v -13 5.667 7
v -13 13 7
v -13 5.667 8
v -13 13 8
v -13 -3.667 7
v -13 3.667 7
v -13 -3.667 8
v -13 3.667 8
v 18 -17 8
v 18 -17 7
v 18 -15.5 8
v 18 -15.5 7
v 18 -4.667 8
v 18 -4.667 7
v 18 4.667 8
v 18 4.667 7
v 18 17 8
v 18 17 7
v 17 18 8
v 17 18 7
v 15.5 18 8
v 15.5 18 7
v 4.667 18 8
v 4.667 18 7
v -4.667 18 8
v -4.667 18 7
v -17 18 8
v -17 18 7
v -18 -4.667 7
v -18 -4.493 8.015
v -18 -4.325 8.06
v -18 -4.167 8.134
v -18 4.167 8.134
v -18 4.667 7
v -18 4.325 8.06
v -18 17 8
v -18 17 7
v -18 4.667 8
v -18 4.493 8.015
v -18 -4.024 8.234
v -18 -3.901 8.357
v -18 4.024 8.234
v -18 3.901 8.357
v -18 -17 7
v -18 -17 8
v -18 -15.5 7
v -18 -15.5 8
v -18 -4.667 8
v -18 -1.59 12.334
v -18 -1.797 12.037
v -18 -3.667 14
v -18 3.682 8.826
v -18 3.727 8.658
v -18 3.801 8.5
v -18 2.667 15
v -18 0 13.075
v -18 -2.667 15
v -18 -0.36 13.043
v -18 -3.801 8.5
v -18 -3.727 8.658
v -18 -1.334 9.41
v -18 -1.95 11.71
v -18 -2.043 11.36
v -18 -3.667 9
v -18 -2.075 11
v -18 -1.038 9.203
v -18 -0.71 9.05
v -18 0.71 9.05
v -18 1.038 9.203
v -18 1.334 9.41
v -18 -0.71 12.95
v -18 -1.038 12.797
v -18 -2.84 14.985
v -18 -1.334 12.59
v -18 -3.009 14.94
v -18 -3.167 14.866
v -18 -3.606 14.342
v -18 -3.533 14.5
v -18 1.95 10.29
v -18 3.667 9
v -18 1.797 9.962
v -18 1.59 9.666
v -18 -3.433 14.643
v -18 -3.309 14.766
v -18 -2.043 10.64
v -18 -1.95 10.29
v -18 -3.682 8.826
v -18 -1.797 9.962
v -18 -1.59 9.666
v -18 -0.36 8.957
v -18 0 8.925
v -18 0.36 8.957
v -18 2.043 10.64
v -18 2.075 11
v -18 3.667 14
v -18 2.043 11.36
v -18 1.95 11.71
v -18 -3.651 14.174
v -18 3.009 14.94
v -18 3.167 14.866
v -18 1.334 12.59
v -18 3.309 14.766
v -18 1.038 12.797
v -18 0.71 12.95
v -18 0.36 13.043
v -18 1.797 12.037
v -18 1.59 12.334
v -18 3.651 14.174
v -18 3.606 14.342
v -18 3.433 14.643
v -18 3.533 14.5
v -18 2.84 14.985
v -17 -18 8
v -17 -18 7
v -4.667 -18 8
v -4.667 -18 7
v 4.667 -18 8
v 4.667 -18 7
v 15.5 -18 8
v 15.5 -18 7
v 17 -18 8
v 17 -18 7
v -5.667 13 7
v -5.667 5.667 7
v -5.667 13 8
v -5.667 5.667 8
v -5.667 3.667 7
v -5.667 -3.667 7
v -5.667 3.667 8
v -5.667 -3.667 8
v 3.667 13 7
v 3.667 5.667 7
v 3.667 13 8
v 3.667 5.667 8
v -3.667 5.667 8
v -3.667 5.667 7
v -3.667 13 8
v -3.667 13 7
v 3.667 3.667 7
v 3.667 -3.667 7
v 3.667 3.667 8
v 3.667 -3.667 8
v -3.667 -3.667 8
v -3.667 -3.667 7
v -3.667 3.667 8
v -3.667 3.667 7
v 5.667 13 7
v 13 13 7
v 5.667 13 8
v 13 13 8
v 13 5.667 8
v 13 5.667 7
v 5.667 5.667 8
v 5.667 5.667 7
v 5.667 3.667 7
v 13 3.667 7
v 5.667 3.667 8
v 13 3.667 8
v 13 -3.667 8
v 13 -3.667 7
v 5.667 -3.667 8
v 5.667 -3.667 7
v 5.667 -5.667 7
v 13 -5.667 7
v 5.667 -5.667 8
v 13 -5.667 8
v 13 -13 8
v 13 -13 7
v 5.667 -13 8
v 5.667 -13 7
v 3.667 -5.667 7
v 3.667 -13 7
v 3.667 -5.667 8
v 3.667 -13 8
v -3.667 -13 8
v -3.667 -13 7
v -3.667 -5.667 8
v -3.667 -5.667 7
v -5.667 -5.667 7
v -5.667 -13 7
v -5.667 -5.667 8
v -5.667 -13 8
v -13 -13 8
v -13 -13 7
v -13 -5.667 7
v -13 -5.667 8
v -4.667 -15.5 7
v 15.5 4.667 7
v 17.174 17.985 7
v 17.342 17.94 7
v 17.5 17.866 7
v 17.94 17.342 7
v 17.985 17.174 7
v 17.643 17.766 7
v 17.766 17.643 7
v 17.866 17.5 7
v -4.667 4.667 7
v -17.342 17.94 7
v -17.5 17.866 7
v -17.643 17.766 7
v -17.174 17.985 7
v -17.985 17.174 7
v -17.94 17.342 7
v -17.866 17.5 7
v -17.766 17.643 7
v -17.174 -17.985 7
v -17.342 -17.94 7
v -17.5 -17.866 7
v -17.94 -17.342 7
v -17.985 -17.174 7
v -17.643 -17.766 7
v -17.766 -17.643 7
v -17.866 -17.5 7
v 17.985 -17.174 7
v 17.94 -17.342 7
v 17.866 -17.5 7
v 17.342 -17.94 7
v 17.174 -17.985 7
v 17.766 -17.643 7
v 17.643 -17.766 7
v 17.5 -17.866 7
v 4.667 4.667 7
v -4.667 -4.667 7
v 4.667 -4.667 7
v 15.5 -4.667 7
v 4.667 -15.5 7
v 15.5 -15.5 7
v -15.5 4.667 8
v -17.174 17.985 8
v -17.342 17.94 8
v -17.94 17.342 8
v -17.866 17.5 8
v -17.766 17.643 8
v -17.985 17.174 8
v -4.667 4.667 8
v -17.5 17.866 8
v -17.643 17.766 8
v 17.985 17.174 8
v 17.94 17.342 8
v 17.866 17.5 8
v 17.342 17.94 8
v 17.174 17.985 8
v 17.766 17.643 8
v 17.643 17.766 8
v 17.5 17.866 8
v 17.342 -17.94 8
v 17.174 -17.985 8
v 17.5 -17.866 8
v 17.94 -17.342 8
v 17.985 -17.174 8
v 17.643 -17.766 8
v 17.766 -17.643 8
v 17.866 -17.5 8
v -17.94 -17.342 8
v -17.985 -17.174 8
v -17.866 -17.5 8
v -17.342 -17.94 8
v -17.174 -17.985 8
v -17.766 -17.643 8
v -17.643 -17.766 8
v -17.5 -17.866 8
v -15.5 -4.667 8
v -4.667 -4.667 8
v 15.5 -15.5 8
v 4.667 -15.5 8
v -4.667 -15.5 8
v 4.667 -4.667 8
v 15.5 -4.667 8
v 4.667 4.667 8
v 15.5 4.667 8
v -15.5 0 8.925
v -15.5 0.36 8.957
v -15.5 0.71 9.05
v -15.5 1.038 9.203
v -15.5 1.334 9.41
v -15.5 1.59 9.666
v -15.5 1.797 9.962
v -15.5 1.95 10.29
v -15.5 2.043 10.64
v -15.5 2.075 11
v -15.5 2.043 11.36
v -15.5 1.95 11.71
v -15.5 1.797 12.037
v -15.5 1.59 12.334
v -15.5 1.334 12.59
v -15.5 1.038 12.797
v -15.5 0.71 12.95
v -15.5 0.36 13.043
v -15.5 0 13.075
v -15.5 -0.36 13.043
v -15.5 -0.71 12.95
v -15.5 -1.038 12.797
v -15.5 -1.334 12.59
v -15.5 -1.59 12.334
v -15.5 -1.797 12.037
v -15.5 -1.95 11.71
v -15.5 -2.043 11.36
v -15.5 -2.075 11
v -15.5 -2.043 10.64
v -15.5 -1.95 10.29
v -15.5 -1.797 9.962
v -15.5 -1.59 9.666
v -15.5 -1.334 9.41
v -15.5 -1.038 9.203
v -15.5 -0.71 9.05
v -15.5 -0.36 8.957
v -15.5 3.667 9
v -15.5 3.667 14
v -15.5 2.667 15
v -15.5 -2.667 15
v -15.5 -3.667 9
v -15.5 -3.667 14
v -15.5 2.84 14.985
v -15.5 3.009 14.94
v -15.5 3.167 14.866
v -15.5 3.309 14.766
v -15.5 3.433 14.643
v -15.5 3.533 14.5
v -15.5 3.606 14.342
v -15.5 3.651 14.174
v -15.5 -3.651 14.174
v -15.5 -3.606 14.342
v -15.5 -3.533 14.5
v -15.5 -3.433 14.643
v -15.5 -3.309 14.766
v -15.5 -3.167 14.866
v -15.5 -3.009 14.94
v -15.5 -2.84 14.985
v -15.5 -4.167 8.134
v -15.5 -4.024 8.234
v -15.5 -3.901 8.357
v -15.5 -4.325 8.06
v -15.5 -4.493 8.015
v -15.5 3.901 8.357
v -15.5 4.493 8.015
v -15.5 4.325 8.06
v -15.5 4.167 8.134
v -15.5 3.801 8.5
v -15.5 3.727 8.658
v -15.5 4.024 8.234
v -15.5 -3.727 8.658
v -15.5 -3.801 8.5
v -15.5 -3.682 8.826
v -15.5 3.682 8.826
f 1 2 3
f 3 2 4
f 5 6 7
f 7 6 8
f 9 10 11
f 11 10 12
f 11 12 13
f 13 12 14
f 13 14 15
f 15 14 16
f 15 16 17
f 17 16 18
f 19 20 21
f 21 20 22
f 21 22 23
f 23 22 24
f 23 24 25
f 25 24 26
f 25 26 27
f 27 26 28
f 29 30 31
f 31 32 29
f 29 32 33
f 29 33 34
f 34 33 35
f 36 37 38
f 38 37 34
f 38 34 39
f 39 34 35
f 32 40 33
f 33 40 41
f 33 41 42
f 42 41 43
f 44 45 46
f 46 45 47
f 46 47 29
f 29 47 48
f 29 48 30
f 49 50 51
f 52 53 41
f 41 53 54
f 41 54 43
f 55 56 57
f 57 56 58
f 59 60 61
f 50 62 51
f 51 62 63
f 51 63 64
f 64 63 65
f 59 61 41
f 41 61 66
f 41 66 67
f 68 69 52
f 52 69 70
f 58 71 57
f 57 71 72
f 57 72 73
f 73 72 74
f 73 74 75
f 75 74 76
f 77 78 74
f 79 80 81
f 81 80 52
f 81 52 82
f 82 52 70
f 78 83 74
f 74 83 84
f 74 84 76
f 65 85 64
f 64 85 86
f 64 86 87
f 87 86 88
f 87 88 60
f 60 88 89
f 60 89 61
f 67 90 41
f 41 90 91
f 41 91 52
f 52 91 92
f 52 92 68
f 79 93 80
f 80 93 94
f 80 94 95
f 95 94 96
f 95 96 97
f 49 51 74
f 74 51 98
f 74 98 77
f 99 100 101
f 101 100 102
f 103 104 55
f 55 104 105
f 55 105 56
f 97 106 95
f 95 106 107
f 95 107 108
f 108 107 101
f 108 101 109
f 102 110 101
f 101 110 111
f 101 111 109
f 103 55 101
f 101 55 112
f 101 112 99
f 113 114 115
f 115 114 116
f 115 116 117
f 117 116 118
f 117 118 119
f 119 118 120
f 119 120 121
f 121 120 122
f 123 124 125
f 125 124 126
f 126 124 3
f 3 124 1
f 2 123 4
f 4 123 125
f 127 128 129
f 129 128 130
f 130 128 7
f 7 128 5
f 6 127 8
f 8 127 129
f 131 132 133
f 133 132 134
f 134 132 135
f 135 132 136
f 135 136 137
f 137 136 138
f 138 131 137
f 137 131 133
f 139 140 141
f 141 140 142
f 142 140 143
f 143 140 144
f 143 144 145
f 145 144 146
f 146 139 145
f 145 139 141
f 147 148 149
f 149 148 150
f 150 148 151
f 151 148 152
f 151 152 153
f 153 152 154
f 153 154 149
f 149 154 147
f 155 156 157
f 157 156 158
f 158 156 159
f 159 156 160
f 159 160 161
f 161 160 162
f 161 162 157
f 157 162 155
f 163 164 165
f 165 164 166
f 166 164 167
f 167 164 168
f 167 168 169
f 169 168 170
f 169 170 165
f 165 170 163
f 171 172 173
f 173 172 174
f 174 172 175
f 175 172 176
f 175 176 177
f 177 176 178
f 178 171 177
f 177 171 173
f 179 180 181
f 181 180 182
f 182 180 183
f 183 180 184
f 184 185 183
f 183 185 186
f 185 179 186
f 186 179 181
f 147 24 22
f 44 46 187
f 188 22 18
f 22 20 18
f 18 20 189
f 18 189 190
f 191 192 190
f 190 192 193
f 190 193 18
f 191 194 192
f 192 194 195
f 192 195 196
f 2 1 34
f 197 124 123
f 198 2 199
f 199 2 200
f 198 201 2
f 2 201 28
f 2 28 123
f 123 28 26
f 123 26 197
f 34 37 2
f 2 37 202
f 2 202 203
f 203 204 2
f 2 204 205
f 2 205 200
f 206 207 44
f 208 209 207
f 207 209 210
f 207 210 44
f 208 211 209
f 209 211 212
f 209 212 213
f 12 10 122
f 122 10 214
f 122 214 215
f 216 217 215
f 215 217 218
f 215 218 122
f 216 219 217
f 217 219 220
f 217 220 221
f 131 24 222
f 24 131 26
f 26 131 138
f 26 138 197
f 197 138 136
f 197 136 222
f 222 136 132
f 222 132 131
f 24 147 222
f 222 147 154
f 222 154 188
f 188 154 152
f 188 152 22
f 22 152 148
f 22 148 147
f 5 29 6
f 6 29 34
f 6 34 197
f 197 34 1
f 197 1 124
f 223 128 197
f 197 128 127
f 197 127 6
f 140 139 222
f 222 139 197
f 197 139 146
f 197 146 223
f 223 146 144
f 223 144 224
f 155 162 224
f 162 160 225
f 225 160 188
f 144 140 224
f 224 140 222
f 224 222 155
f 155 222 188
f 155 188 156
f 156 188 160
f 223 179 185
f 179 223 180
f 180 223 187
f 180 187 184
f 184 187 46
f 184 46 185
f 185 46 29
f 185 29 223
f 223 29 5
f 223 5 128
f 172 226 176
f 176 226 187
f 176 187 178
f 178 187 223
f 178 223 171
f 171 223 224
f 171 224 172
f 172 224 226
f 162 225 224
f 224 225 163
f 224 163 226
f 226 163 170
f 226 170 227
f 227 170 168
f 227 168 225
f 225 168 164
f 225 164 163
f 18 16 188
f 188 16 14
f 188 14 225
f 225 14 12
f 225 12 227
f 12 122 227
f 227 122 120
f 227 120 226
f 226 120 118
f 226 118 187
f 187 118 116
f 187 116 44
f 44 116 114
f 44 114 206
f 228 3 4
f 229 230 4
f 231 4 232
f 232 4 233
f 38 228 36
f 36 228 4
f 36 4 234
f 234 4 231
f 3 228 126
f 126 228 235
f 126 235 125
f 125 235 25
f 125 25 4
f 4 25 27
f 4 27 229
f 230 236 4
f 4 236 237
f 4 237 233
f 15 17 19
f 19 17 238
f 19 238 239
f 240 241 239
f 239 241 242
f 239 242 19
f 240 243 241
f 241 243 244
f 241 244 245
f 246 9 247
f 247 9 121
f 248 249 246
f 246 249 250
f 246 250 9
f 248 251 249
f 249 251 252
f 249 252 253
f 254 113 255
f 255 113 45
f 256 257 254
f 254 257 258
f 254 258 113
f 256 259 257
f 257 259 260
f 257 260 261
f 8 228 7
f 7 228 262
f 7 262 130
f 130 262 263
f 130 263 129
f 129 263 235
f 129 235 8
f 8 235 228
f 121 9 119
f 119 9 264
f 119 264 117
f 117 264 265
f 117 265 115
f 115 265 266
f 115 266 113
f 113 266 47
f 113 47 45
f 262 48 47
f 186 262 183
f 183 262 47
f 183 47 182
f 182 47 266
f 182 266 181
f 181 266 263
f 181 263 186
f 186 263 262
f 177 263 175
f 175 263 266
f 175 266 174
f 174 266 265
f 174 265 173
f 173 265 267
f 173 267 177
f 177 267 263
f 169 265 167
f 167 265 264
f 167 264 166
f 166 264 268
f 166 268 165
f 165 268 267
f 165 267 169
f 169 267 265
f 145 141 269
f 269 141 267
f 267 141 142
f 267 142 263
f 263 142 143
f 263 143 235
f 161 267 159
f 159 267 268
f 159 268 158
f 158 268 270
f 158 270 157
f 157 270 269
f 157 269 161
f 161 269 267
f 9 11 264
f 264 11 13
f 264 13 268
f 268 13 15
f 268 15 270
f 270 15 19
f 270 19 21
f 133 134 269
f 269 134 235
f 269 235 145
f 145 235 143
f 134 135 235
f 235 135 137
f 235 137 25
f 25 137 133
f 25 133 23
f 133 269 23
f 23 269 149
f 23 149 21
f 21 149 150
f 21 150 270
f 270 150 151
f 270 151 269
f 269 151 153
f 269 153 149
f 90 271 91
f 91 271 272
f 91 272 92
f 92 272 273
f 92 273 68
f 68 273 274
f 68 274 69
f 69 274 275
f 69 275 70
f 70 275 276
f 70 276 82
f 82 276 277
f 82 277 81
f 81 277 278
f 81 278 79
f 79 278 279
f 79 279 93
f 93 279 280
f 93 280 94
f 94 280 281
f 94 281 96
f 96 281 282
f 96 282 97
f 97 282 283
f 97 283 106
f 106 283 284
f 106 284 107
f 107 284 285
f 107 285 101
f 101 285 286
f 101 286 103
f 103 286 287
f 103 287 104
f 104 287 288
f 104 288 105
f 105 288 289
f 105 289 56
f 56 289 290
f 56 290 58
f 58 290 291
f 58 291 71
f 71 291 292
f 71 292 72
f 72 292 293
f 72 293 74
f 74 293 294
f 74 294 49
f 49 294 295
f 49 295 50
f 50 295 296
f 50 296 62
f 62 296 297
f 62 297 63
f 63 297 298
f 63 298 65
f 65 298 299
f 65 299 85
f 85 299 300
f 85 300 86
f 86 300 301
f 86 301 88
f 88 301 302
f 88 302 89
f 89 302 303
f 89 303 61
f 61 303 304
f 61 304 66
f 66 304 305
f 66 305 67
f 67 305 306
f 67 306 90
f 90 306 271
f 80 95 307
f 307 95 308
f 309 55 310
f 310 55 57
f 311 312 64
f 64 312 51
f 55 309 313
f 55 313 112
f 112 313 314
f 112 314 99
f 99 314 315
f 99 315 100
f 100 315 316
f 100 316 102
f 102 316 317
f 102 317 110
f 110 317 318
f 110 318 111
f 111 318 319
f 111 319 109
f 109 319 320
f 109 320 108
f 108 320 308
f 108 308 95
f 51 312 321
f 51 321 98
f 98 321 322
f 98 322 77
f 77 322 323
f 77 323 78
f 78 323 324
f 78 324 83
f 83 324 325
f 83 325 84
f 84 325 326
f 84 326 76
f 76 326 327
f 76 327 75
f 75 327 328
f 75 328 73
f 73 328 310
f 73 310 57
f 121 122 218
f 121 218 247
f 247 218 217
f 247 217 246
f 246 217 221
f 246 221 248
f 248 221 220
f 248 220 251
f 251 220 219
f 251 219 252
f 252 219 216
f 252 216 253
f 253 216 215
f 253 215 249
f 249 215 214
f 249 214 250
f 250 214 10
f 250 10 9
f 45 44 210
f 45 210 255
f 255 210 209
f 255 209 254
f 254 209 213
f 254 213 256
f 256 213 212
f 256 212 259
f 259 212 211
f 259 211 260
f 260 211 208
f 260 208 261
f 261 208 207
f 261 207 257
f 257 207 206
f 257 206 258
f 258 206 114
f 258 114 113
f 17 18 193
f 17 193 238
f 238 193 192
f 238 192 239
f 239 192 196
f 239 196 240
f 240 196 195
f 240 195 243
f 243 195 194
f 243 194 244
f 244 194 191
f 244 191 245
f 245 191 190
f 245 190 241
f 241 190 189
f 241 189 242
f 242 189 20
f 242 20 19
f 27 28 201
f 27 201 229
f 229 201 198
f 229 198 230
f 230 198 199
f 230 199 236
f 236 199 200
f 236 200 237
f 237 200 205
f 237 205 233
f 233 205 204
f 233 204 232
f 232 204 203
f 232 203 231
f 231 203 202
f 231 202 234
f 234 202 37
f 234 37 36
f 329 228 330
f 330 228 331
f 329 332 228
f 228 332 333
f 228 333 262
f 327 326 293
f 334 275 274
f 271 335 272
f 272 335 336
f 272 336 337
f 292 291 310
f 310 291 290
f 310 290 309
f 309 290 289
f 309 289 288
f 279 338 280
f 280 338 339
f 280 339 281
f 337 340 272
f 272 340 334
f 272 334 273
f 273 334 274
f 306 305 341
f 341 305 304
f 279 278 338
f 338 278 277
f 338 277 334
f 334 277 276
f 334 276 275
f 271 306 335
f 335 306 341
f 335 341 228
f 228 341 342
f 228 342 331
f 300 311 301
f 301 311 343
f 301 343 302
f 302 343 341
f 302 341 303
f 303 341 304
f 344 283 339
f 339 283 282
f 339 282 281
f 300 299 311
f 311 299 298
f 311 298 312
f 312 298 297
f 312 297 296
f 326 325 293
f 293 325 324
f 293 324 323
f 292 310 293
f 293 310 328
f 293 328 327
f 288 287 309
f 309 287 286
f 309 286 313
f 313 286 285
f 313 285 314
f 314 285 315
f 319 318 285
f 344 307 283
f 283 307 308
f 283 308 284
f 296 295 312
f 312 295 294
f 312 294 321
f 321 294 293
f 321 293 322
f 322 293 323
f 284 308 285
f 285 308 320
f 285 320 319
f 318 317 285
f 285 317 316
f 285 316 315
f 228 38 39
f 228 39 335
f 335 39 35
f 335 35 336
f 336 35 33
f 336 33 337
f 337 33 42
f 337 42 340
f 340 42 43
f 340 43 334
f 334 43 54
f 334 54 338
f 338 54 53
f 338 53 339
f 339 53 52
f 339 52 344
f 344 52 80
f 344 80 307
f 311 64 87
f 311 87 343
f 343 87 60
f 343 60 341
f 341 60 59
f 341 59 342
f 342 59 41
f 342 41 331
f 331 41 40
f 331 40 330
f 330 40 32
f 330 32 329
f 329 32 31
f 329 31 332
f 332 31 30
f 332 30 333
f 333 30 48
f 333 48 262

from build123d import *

# Parameters (mm, degrees)
SKETCH1_W                  = 36
SKETCH1_H                  = 36
BOSS_EXTRUDE1_DEPTH        = 10
SKETCH2_W                  = 7.333333333
SKETCH2_H                  = 7.333333333
SKETCH2_H_2                = 7.333333334
SKETCH2_W_2                = 7.333333334
CUT_EXTRUDE1_DEPTH         = 28.349588662
SKETCH6_W                  = 36
SKETCH6_H                  = 36
CUT_EXTRUDE3_DEPTH         = 7
SKETCH9_W                  = 31.197314423
SKETCH9_H                  = 36.13311488
CUT_EXTRUDE5_DEPTH         = 2
SKETCH13_W                 = 5
SKETCH13_H                 = 36
BOSS_EXTRUDE2_DEPTH        = 10
F_4_1_4_1_DIAMETER_SLOT1_D = 4.15
CUT_EXTRUDE6_DEPTH         = 42.048751504
FILLET1_R                  = 1
CUT_EXTRUDE7_START         = -7
SKETCH17_W                 = 2.5
SKETCH17_H                 = 7.333333334
CUT_EXTRUDE7_DEPTH         = 7
FILLET2_R                  = 1


with BuildPart() as part:
    # Sketch1 → Boss-Extrude1 (new body)
    with BuildSketch(Plane.XY):
        Rectangle(SKETCH1_W, SKETCH1_H)
    extrude(amount=BOSS_EXTRUDE1_DEPTH)

    # Sketch2 → Cut-Extrude1 (cut, through all)
    with BuildSketch(Plane.XY.offset(10)):
        with Locations((-9.333333334, 9.333333334)):
            Rectangle(SKETCH2_W, SKETCH2_H)
        with Locations((-9.333333334, 0)):
            Rectangle(SKETCH2_W, SKETCH2_H_2)
        with Locations((0, 9.333333334)):
            Rectangle(SKETCH2_W_2, SKETCH2_H)
        Rectangle(SKETCH2_W_2, SKETCH2_H_2)
        with Locations((9.333333334, 9.333333334)):
            Rectangle(SKETCH2_W, SKETCH2_H)
        with Locations((9.333333334, 0)):
            Rectangle(SKETCH2_W, SKETCH2_H_2)
        with Locations((9.333333334, -9.333333334)):
            Rectangle(SKETCH2_W, SKETCH2_H)
        with Locations((0, -9.333333334)):
            Rectangle(SKETCH2_W_2, SKETCH2_H)
        with Locations((-9.333333334, -9.333333334)):
            Rectangle(SKETCH2_W, SKETCH2_H)
    extrude(amount=-CUT_EXTRUDE1_DEPTH, mode=Mode.SUBTRACT)

    # Sketch6 → Cut-Extrude3 (cut)
    with BuildSketch(Plane(origin=(0, 0, 0), x_dir=(-1, 0, 0), z_dir=(0, 0, -1))):
        Rectangle(SKETCH6_W, SKETCH6_H)
    extrude(amount=-CUT_EXTRUDE3_DEPTH, mode=Mode.SUBTRACT)

    # Sketch9 → Cut-Extrude5 (cut)
    with BuildSketch(Plane.XY.offset(10)):
        with Locations((2.598657212, 0.06655744)):
            Rectangle(SKETCH9_W, SKETCH9_H)
    extrude(amount=-CUT_EXTRUDE5_DEPTH, mode=Mode.SUBTRACT)

    # Sketch13 → Boss-Extrude2 (add)
    with BuildSketch(Plane.XY.offset(10)):
        with Locations((-15.5, 0)):
            Rectangle(SKETCH13_W, SKETCH13_H)
    extrude(amount=BOSS_EXTRUDE2_DEPTH)

    # Ø4.1 (4.1) Diameter Slot1 (through all)
    with Locations(Plane(origin=(-13, 0, 0), x_dir=(0, 0, -1), z_dir=(1, 0, 0))):
        with Locations((-11, 0)):
            Hole(F_4_1_4_1_DIAMETER_SLOT1_D / 2)

    # Sketch16 → Cut-Extrude6 (cut, through all)
    with BuildSketch(Plane(origin=(-13, 0, 0), x_dir=(0, 0, -1), z_dir=(1, 0, 0))):
        Polygon((-8, -18), (-8, -3.666666667), (-15, -3.666666667), (-15, 3.666666667), (-8, 3.666666667), (-8, 18), (-20, 18), (-20, -18), align=None)
    extrude(amount=-CUT_EXTRUDE6_DEPTH, mode=Mode.SUBTRACT)

    # Fillet1
    fillet1_edges = [part.edges().sort_by_distance(p)[0] for p in [
        (18, -18, 7.5),
        (18, 18, 7.5),
        (-18, -18, 7.5),
        (-18, 18, 7.5),
        (-15.5, 3.666666667, 15),
        (-15.5, -3.666666667, 15),
    ]]
    fillet(fillet1_edges, radius=FILLET1_R)

    # Sketch17 → Cut-Extrude7 (cut)
    with BuildSketch(Plane.XY.offset(15).offset(CUT_EXTRUDE7_START)):
        with Locations((-14.25, 0)):
            Rectangle(SKETCH17_W, SKETCH17_H)
    extrude(amount=CUT_EXTRUDE7_DEPTH, mode=Mode.SUBTRACT)

    # Fillet2
    fillet2_edges = [part.edges().sort_by_distance(p)[0] for p in [
        (-16.75, 3.666666667, 8),
        (-16.75, -3.666666667, 8),
    ]]
    fillet(fillet2_edges, radius=FILLET2_R)


solid = part.part
